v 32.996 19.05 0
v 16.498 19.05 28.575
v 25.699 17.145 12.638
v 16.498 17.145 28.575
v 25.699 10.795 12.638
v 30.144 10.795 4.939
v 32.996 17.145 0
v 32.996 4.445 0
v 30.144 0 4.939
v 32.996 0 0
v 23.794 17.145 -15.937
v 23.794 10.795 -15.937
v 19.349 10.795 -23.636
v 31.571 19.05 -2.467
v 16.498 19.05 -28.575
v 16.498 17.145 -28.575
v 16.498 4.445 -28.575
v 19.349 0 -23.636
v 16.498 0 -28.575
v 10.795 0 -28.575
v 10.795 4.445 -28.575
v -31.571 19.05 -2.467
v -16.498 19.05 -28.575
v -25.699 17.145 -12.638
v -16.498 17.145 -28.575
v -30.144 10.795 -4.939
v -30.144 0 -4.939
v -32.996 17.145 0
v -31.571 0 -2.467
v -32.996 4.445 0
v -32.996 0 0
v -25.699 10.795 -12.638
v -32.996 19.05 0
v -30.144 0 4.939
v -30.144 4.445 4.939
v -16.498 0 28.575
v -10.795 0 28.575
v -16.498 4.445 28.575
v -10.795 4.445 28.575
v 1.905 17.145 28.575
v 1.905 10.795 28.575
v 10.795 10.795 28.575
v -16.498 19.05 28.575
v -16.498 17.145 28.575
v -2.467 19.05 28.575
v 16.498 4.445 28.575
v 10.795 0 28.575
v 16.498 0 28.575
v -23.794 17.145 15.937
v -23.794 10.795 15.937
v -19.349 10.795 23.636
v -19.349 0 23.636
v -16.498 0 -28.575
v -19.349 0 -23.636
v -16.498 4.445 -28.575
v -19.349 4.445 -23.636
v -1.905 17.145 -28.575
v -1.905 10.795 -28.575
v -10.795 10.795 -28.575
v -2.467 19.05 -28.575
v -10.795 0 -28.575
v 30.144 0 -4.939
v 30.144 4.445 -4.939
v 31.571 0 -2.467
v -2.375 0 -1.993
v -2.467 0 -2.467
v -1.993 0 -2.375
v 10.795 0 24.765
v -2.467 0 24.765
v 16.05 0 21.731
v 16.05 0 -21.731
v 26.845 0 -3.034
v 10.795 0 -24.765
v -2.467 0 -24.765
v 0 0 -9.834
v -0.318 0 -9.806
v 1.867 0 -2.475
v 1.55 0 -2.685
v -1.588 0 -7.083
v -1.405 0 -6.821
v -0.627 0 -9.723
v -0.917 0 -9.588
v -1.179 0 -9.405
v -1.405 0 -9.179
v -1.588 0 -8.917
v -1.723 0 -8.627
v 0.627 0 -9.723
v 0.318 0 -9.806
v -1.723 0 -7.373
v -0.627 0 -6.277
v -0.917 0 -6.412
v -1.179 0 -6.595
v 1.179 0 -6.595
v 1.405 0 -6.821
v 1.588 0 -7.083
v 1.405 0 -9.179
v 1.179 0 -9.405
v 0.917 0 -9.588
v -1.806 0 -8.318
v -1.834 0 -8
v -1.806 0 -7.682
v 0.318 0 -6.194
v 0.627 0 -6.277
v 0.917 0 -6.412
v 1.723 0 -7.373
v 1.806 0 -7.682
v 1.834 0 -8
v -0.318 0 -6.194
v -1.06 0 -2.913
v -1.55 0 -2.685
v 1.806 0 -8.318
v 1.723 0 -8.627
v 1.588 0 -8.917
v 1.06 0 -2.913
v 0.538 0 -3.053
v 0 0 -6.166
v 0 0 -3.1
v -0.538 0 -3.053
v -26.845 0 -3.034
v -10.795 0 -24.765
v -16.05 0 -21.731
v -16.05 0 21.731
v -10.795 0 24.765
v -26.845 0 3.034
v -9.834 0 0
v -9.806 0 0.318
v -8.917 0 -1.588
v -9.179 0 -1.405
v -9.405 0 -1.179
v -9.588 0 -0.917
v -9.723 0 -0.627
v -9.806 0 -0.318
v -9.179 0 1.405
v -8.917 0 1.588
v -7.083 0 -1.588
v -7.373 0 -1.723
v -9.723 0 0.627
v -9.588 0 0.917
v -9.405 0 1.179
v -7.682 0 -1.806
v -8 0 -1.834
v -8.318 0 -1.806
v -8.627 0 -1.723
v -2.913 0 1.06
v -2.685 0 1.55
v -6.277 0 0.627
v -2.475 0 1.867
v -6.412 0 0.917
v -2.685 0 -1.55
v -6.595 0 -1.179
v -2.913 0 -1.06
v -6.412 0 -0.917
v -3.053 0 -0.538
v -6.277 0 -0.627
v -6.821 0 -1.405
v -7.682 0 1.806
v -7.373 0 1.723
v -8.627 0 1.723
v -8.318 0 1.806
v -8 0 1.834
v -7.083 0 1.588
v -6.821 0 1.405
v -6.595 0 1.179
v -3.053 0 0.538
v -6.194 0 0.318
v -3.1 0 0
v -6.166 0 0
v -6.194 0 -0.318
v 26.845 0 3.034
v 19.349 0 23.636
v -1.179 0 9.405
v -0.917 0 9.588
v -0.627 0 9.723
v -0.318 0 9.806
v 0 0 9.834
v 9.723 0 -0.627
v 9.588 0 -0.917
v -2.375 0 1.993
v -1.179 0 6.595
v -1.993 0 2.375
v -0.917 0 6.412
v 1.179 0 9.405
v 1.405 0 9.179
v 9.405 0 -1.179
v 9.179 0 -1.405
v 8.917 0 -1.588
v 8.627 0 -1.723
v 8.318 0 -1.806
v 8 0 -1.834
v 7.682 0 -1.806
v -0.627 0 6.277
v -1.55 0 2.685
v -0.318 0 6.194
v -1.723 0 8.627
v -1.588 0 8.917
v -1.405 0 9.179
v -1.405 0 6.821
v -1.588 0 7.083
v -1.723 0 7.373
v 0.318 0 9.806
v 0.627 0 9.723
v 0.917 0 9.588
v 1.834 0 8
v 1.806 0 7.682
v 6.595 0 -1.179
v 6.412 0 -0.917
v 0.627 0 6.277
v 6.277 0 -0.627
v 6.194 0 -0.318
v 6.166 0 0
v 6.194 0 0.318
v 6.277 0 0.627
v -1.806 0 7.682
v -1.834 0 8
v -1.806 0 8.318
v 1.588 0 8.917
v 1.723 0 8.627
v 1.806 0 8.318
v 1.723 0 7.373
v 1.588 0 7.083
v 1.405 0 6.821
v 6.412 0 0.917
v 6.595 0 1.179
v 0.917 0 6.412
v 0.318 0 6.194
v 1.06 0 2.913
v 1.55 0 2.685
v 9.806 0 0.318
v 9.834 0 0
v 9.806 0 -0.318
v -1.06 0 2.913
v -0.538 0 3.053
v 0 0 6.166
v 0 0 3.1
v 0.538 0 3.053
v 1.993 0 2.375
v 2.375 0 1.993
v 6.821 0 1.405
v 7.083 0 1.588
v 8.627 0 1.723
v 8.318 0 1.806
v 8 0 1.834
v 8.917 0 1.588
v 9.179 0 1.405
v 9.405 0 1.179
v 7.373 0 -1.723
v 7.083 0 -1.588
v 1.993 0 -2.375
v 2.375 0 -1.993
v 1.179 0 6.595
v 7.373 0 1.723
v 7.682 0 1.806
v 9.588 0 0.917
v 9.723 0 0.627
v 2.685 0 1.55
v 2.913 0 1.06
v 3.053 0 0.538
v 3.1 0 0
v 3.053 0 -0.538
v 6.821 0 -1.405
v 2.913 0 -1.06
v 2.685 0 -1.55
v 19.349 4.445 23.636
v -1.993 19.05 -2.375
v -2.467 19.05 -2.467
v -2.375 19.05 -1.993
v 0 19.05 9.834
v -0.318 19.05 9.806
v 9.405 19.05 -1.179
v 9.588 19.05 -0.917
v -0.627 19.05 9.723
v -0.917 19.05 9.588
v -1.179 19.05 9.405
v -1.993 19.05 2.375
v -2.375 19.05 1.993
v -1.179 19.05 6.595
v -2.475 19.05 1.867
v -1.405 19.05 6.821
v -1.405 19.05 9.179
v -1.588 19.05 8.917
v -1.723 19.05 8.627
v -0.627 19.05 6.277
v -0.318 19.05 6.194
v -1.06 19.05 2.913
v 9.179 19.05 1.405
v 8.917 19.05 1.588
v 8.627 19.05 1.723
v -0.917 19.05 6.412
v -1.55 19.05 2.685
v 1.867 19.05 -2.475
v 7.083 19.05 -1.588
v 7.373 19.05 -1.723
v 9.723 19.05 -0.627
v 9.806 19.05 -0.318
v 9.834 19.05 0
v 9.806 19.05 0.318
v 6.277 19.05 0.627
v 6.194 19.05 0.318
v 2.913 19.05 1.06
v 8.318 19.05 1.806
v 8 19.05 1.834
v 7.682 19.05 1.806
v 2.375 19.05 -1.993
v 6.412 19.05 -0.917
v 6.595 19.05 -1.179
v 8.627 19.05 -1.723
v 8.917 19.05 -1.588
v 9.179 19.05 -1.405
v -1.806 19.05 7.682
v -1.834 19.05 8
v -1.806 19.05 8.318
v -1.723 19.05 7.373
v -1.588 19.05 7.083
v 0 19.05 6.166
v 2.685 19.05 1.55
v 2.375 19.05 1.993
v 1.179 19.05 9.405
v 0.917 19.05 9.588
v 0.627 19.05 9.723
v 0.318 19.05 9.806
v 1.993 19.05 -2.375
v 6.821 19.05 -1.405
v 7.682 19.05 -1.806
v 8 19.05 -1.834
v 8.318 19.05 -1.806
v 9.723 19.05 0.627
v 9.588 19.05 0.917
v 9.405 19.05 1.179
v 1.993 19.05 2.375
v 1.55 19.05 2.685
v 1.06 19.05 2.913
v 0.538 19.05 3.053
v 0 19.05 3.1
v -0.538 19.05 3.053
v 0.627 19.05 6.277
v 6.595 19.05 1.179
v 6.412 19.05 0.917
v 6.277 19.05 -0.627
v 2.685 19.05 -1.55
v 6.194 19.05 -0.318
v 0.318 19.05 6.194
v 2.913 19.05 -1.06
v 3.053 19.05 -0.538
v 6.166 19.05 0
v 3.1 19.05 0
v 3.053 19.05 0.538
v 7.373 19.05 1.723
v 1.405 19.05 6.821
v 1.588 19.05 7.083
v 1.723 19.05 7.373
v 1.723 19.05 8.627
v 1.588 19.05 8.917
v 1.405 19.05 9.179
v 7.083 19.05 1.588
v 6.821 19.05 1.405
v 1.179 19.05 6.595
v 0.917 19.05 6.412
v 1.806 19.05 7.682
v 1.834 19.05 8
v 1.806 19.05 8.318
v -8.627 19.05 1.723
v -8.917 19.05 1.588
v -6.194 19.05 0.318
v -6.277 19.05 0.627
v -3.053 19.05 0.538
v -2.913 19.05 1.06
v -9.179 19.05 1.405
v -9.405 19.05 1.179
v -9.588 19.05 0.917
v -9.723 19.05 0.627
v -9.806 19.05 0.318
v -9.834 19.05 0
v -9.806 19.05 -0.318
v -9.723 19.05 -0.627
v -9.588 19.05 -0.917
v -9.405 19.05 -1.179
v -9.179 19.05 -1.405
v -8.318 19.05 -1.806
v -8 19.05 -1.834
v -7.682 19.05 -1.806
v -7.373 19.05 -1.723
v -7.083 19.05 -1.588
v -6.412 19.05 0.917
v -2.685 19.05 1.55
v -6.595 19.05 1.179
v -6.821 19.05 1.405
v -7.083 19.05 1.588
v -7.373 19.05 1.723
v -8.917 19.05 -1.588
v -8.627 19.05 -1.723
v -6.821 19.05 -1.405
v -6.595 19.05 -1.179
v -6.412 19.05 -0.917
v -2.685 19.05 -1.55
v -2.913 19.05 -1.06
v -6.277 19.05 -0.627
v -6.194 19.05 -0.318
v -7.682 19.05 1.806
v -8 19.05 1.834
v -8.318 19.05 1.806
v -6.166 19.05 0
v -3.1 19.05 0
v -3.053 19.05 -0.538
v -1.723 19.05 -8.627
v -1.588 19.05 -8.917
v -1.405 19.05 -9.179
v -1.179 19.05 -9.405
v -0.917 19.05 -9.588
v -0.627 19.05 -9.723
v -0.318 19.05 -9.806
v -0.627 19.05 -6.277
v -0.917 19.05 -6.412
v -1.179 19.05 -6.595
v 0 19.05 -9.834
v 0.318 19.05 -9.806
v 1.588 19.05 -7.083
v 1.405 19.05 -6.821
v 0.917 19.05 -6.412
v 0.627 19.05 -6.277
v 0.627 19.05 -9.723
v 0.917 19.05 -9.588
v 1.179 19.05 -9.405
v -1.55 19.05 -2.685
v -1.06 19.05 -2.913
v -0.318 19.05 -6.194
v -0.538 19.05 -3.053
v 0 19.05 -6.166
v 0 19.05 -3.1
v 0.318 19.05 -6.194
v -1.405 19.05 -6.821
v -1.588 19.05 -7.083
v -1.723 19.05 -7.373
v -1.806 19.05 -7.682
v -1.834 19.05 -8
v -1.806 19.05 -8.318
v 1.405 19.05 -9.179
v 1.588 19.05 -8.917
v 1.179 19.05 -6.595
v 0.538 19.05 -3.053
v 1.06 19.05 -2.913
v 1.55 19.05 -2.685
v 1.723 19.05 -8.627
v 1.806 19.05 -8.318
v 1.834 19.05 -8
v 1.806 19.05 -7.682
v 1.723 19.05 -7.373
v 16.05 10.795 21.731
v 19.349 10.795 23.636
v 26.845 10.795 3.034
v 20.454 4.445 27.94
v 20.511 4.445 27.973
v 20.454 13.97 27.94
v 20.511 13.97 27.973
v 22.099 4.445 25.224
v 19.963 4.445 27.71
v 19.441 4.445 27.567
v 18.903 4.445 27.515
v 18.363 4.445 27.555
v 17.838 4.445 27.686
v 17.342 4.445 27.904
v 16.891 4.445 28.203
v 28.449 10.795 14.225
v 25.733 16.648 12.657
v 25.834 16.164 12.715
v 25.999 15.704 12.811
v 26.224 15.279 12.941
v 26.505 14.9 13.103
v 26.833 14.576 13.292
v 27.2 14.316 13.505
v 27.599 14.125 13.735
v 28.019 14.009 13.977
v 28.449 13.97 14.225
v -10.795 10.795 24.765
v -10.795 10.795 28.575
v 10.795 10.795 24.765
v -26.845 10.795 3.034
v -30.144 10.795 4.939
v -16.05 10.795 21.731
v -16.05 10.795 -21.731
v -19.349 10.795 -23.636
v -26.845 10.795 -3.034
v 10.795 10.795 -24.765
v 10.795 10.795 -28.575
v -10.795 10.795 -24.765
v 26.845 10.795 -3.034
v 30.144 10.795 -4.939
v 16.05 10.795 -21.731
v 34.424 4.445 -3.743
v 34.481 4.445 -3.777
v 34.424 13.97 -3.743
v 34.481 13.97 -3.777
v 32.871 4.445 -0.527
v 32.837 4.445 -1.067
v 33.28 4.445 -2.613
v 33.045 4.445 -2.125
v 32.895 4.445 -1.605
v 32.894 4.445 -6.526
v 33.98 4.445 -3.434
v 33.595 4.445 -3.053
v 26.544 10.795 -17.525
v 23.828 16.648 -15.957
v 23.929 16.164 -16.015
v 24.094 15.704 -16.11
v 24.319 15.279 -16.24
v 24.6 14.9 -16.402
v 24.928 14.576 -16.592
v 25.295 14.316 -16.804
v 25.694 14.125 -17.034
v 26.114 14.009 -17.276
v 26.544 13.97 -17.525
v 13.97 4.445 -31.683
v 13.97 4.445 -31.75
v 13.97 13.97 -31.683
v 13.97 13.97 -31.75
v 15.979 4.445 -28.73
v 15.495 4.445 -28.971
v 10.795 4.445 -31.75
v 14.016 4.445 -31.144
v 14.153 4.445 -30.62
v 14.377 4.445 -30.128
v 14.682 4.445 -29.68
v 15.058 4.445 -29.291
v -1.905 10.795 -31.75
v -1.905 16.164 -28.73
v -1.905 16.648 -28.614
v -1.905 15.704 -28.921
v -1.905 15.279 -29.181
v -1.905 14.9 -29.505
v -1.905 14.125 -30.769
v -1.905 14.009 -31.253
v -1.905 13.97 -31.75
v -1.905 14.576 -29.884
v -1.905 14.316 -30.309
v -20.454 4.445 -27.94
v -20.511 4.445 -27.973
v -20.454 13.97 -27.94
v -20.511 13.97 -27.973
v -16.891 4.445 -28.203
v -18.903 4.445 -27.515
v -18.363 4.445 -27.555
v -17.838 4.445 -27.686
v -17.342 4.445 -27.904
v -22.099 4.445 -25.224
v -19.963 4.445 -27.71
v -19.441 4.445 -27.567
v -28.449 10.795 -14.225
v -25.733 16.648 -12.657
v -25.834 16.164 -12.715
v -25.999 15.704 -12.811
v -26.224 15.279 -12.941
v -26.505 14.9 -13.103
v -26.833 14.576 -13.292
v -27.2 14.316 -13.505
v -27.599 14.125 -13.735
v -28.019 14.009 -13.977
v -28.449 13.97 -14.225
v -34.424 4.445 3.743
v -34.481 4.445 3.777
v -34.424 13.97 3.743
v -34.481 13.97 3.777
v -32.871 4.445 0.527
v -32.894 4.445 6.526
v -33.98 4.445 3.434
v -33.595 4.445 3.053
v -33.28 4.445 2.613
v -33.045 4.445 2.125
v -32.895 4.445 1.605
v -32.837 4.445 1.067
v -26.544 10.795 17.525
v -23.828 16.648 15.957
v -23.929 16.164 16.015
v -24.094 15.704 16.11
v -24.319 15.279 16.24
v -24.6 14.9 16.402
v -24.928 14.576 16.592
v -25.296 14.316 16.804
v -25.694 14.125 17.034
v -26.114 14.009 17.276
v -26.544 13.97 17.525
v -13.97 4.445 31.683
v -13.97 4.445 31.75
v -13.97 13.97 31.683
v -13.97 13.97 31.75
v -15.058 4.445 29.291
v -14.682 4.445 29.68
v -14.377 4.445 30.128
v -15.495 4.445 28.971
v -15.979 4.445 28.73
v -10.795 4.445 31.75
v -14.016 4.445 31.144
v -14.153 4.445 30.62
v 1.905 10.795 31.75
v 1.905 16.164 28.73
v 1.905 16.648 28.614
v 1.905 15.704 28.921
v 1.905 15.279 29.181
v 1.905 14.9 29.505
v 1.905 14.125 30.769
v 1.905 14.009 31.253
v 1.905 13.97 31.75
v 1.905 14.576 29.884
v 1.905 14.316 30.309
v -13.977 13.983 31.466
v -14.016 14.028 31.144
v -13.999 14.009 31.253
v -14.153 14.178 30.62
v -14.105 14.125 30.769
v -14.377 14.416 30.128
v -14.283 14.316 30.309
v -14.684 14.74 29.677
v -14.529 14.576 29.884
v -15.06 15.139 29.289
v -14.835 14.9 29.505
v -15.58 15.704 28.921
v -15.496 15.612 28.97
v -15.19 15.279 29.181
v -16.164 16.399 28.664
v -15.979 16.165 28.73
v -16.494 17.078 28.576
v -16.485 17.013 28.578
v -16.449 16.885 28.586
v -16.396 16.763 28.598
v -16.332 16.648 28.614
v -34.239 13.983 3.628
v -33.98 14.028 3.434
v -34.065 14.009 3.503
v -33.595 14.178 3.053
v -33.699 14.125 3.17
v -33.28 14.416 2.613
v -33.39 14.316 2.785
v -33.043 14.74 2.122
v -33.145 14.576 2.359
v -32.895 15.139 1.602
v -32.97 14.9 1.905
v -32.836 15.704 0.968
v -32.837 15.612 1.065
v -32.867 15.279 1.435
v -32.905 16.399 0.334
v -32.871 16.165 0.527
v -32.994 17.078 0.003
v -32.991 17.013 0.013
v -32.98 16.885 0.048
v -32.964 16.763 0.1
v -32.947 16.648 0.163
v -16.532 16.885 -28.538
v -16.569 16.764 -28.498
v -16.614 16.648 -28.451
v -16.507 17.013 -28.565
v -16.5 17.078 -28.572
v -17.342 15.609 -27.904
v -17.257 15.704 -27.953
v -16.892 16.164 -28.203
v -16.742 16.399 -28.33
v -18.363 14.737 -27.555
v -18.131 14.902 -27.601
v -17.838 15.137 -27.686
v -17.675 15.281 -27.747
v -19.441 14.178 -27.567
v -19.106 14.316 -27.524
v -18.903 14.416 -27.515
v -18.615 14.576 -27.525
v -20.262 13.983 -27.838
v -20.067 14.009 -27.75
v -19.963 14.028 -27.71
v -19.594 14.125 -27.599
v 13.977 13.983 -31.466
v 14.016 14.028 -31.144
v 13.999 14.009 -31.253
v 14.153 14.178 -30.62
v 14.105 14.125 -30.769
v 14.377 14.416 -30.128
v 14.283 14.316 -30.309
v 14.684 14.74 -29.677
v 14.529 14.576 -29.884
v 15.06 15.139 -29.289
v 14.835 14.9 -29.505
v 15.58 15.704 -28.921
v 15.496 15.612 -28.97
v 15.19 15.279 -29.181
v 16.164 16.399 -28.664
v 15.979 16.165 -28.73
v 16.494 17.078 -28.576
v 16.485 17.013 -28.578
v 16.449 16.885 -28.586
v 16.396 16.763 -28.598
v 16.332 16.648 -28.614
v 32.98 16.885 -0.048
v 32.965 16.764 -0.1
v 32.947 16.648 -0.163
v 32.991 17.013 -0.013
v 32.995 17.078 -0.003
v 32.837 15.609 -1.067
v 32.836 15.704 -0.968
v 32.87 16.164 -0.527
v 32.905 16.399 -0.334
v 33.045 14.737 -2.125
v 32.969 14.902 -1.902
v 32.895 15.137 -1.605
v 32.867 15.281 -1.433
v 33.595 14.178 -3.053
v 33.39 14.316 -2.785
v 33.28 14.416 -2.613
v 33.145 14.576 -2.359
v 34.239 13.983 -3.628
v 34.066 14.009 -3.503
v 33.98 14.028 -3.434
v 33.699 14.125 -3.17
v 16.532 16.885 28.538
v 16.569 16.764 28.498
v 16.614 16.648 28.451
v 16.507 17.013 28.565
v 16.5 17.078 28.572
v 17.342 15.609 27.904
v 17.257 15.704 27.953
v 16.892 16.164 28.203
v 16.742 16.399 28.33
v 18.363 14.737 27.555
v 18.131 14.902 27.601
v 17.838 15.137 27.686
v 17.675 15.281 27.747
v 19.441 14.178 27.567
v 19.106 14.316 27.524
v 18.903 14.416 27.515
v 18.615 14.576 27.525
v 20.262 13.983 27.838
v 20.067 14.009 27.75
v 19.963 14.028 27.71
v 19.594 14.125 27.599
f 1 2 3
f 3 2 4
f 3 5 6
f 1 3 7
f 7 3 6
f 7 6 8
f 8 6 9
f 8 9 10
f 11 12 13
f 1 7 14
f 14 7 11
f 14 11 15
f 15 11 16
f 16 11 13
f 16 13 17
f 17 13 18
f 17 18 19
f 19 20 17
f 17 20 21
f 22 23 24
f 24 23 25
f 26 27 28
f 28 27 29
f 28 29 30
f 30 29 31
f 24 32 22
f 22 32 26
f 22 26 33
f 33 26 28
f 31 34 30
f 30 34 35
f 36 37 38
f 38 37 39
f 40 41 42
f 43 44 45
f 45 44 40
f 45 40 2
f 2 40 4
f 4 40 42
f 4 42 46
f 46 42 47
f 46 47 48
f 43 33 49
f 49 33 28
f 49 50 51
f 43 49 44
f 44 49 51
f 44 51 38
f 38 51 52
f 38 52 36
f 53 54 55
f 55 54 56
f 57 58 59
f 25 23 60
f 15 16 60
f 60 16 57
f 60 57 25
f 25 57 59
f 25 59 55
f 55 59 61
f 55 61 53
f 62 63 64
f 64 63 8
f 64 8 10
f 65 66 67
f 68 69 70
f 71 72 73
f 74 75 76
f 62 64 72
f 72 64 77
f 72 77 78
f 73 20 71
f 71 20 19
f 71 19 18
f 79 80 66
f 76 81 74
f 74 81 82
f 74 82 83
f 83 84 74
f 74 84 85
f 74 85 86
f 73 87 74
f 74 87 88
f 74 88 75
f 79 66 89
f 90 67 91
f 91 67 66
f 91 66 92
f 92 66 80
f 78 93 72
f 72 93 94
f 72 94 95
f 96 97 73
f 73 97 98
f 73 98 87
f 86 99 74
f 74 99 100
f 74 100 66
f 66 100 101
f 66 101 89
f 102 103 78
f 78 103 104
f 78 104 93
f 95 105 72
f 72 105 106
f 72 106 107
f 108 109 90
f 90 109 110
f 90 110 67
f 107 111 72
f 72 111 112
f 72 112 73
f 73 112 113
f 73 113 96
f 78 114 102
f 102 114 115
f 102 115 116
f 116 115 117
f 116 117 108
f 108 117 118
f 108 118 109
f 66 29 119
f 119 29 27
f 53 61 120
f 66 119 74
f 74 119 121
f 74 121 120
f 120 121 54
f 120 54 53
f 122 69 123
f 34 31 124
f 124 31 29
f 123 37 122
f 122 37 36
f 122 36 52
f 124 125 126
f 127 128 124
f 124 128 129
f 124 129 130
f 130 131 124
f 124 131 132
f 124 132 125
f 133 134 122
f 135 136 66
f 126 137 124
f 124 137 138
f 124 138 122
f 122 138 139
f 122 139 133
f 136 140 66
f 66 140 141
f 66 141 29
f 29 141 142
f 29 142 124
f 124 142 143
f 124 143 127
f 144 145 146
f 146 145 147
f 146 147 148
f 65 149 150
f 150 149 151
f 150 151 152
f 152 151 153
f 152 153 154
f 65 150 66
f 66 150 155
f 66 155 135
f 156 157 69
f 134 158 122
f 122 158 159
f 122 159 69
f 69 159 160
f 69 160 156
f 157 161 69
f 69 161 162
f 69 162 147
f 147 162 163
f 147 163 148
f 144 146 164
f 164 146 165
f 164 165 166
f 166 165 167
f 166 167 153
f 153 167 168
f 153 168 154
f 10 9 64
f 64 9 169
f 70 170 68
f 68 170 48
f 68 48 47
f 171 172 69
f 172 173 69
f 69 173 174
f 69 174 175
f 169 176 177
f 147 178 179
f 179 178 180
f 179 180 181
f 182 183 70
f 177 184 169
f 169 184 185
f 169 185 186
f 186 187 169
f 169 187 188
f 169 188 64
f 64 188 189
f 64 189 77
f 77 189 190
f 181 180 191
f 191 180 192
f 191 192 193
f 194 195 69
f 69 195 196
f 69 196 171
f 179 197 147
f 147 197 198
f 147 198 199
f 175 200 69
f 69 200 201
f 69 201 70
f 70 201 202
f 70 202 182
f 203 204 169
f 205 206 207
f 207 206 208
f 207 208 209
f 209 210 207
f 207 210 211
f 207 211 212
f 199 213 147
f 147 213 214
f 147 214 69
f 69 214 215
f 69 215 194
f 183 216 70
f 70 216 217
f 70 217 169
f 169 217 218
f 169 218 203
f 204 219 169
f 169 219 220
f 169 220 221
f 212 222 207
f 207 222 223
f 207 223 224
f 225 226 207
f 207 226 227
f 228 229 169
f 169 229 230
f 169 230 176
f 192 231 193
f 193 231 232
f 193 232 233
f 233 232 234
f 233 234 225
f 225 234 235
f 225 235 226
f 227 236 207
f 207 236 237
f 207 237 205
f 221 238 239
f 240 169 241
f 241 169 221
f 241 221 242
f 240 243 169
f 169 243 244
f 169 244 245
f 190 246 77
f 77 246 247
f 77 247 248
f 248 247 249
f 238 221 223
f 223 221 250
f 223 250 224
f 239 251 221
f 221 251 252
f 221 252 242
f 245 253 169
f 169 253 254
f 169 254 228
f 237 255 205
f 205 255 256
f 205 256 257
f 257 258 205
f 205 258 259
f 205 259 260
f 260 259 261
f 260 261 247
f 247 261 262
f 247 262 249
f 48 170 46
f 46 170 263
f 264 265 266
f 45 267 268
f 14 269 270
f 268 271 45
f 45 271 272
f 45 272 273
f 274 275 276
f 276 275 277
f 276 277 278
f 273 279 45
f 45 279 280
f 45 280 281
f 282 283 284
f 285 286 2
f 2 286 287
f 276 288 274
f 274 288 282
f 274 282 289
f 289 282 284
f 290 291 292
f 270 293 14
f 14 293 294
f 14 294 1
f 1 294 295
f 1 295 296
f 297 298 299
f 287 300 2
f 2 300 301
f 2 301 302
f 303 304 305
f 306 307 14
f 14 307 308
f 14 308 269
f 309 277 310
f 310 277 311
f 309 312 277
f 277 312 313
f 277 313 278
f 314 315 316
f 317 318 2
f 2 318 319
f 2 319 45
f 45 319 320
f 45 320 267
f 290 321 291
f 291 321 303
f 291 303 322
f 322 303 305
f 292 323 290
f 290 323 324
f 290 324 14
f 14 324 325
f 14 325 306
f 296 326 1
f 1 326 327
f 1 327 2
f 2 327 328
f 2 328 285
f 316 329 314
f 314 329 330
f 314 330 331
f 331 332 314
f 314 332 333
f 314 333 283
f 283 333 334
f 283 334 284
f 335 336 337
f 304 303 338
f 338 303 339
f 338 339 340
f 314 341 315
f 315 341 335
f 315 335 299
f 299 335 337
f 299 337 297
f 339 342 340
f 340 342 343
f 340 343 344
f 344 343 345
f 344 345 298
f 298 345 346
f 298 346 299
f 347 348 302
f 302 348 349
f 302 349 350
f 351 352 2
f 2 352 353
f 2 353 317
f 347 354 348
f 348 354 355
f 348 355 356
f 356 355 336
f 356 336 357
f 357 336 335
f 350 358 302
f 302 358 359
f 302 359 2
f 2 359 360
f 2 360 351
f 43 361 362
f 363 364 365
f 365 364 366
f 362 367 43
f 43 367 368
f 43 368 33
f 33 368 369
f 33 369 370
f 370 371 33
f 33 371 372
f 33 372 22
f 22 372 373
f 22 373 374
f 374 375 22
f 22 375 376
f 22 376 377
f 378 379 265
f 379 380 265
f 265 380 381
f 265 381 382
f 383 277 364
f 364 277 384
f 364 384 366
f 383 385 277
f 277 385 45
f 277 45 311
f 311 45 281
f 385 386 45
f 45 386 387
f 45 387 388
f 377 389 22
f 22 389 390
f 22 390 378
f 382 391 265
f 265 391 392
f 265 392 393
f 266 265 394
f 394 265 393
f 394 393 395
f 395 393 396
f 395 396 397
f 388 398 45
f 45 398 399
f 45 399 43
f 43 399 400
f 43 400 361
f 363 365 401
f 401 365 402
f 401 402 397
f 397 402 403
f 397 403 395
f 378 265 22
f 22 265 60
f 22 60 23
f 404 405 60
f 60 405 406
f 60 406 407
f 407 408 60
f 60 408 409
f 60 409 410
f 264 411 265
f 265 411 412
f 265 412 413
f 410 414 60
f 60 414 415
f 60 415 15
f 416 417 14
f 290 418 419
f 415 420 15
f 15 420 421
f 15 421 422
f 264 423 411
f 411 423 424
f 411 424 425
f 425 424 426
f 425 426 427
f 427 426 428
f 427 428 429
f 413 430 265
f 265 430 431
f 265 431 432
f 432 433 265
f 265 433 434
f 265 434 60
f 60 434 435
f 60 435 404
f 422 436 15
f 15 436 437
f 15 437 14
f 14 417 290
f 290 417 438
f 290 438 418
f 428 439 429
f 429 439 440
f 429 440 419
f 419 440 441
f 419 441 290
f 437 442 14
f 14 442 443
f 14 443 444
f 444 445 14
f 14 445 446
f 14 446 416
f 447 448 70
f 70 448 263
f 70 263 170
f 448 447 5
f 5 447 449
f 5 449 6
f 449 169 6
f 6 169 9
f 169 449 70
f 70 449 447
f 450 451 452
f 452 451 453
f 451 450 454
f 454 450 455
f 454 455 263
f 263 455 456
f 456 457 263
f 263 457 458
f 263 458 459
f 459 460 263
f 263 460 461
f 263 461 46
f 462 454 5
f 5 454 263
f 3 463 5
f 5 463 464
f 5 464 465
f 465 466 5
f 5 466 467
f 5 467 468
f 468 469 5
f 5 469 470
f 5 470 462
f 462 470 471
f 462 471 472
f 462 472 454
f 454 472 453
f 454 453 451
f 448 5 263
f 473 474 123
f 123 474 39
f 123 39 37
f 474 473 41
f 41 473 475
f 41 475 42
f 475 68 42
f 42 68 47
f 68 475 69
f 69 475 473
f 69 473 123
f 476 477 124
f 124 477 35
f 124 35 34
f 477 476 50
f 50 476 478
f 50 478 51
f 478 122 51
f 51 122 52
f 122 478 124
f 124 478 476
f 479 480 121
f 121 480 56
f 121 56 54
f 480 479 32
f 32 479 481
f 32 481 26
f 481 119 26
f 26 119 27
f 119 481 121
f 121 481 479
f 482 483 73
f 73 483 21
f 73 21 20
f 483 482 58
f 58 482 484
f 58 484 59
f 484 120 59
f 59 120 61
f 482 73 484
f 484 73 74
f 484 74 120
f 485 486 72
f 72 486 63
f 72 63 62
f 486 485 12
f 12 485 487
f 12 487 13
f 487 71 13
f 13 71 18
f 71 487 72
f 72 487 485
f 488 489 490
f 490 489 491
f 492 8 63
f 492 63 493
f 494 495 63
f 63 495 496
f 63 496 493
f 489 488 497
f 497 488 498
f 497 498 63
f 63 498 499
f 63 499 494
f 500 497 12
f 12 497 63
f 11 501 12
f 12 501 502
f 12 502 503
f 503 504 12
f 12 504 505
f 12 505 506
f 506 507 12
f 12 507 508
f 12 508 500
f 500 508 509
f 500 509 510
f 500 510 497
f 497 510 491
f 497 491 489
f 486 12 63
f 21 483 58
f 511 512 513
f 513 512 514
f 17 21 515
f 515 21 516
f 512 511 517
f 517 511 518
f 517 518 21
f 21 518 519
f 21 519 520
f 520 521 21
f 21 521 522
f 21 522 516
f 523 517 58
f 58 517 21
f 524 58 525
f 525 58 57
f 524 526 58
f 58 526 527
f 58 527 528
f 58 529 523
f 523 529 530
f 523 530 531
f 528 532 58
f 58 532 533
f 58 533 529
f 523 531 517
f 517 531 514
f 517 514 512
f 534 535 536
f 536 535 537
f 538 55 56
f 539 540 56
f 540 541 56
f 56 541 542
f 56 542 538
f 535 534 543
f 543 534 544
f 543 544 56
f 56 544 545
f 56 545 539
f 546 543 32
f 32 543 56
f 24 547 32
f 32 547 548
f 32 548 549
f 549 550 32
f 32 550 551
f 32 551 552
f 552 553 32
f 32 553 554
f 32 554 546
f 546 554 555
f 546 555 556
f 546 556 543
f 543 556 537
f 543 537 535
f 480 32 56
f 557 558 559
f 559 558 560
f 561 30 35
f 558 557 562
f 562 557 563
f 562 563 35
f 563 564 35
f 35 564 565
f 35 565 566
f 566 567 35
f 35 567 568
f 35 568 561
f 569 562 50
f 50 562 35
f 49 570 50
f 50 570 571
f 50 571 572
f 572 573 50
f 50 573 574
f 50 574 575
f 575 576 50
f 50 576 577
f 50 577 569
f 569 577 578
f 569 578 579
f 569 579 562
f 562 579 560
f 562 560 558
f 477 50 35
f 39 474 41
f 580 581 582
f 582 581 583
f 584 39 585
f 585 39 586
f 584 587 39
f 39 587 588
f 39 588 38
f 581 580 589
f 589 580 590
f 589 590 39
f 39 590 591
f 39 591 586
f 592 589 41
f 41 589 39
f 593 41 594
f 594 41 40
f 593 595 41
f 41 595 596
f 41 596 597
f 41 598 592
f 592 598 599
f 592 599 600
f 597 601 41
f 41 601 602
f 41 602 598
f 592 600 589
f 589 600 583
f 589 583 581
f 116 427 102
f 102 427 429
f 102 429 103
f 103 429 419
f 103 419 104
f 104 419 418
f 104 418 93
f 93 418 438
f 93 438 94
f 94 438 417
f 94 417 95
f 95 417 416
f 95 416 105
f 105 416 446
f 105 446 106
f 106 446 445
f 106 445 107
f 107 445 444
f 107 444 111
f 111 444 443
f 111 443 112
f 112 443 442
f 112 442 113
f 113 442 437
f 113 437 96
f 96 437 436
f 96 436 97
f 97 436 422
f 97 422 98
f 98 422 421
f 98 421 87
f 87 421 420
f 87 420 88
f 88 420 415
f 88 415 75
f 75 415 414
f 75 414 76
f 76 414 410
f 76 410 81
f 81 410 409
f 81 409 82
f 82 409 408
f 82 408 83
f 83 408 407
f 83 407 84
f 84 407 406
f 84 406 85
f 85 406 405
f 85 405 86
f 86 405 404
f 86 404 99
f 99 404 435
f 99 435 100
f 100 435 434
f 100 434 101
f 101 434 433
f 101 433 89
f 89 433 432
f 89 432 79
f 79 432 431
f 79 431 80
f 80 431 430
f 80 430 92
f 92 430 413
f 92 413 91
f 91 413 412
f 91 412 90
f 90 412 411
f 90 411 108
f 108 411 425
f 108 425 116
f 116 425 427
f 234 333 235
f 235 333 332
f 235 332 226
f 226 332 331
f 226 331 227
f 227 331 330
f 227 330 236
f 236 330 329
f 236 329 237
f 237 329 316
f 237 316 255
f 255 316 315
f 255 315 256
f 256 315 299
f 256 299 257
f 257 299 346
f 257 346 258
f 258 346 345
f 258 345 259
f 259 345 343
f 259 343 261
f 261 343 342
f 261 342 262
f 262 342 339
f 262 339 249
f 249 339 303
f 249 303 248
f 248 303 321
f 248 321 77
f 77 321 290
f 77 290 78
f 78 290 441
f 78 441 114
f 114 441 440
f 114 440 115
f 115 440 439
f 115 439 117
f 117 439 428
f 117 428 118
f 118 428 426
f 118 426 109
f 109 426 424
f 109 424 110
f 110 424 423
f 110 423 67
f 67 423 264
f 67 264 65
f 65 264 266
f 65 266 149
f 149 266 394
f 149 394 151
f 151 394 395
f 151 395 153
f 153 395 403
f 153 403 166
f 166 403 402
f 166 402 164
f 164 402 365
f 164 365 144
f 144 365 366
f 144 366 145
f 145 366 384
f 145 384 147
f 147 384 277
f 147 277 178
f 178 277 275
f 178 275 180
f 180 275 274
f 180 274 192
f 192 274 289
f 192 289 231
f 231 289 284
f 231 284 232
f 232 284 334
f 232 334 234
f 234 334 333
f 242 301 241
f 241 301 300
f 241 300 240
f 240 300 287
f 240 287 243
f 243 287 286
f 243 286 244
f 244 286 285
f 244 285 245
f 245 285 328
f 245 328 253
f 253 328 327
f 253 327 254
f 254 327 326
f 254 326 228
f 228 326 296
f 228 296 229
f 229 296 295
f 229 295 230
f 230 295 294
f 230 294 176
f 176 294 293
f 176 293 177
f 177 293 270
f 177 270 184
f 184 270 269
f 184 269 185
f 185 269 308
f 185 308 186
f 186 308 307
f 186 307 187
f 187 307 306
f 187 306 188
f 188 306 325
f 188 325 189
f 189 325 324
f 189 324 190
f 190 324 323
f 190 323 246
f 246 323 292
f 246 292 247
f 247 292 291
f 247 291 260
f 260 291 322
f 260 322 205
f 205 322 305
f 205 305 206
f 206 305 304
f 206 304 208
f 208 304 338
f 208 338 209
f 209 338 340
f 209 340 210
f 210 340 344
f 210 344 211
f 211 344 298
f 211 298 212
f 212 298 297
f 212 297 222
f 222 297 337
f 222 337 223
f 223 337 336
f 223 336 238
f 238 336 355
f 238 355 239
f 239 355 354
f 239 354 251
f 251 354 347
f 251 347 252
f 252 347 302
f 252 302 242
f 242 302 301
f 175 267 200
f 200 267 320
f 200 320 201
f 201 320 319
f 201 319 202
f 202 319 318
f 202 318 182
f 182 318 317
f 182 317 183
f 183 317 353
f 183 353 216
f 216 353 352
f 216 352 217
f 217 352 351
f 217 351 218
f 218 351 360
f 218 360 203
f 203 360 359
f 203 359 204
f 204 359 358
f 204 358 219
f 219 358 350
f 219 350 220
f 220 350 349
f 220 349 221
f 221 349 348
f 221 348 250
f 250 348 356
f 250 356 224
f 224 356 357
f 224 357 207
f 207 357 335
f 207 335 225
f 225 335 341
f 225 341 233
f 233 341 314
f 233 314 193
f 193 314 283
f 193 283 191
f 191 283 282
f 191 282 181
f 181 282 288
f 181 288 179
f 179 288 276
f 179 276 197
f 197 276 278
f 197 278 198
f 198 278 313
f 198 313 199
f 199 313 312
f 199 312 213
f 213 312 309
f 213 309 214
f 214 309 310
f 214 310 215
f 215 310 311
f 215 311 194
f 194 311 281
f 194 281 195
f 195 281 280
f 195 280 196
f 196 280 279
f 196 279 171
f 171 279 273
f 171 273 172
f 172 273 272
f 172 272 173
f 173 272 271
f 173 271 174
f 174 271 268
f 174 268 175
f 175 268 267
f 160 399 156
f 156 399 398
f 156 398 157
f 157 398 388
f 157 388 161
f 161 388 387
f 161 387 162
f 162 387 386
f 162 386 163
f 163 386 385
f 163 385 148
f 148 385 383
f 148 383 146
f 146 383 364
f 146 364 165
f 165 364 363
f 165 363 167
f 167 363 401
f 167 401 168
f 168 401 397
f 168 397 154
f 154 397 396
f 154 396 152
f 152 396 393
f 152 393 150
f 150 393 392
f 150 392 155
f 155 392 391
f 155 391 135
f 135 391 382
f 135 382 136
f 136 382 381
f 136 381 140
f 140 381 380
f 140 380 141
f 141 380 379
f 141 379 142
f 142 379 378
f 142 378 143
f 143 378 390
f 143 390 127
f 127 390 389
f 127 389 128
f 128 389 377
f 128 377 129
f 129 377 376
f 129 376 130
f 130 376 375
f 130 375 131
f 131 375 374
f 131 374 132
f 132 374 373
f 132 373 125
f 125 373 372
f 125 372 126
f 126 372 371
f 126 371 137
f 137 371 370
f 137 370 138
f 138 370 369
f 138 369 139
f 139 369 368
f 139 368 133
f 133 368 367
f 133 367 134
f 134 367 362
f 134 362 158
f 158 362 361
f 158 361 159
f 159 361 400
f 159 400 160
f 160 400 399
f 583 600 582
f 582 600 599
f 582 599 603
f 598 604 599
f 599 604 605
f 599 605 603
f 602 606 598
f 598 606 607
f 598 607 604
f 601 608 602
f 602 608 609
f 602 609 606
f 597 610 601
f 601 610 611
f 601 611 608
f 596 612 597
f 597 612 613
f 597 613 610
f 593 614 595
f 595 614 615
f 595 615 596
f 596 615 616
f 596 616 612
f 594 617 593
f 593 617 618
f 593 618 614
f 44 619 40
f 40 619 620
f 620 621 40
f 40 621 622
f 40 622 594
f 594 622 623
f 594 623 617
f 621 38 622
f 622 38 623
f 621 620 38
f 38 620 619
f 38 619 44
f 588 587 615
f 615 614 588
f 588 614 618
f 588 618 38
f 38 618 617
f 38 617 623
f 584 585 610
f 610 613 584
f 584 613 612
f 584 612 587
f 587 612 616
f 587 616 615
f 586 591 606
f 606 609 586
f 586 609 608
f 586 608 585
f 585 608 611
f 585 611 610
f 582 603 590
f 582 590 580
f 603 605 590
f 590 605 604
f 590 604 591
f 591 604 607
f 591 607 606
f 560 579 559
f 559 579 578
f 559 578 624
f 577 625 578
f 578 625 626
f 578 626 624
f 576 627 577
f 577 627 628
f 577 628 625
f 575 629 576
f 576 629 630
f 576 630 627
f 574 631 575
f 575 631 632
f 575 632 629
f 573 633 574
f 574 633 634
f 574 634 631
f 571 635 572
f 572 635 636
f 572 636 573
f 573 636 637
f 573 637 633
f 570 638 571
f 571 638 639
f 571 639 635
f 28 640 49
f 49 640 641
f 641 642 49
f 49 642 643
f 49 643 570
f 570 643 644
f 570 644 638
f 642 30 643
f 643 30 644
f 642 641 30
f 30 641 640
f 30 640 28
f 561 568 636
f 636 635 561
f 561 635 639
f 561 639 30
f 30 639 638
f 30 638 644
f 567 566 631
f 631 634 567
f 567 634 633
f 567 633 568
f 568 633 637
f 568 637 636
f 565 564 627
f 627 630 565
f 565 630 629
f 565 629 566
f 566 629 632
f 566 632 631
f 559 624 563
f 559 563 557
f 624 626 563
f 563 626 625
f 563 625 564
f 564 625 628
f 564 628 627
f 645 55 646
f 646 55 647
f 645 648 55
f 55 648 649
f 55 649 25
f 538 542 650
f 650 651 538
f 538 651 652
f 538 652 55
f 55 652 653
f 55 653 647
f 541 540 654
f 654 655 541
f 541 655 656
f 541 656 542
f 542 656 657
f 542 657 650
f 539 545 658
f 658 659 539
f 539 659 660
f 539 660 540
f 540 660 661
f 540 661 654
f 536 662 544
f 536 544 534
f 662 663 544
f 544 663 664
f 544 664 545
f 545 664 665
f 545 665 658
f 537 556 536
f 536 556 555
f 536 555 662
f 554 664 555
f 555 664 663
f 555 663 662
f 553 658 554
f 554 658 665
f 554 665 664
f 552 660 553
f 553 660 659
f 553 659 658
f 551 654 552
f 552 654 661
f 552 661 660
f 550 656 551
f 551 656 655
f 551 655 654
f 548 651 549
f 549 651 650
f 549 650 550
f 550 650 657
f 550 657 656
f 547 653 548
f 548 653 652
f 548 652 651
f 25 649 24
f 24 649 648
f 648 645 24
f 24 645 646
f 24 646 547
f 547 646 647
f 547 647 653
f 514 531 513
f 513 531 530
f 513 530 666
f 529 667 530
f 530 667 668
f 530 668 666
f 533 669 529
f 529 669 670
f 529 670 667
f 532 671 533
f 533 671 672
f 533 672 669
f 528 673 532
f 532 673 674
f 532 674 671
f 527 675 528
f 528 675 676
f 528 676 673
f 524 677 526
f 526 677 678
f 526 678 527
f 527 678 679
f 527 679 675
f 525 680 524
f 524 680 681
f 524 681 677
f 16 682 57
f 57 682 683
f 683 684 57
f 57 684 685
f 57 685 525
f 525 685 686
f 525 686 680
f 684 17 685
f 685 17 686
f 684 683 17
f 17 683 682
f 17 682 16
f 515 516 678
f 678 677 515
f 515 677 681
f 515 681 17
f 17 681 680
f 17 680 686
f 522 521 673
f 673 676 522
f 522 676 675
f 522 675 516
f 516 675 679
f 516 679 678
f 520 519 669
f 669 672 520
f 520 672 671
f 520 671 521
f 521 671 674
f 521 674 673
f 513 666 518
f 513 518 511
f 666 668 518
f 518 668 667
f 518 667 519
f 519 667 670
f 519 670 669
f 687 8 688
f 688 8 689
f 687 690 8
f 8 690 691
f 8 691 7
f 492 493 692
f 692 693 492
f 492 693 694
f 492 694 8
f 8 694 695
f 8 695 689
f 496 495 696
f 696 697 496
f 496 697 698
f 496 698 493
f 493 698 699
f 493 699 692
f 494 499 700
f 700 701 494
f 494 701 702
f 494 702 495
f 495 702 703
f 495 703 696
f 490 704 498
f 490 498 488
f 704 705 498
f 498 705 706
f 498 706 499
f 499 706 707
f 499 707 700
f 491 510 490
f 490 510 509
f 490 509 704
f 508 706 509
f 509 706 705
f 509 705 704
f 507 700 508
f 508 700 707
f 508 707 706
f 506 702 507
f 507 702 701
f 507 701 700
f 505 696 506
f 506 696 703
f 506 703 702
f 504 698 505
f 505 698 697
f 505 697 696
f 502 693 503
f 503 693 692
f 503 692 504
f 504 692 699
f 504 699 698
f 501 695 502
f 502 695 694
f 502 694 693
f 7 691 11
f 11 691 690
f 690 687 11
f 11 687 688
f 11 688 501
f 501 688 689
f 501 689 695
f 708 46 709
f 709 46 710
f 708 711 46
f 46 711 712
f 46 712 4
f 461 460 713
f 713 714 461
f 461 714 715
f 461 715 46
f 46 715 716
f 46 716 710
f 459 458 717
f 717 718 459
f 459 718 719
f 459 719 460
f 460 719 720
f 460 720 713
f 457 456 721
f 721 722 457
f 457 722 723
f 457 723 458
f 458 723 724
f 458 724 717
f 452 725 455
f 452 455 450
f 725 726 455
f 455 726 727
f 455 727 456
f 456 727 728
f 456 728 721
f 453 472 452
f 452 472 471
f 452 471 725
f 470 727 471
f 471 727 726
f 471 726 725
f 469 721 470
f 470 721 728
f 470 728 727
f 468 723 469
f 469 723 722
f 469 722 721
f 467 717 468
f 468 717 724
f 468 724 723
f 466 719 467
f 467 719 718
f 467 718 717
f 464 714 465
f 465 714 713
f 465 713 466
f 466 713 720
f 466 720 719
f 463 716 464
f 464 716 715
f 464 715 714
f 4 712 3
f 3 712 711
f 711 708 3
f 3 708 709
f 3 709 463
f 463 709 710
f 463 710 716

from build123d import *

# Parameters (mm, degrees)
BOSS_EXTRUDE1_DEPTH = 19.05
SKETCH2_W           = 10.795
SKETCH2_H           = 10.795
CUT_EXTRUDE1_DEPTH  = 3.81
BOSS_EXTRUDE2_DEPTH = 3.175
CIRPATTERN1_COUNT   = 6
SKETCH6_R           = 3.1
SKETCH6_R_2         = 1.83388
CUT_EXTRUDE3_DEPTH  = 51.595706367
FILLET1_R           = 3.175


with BuildPart() as part:
    # Sketch1 → Boss-Extrude1 (new body)
    with BuildSketch(Plane(origin=(0, 0, 0), x_dir=(1, 0, 0), z_dir=(0, 1, 0))):
        Polygon((16.497783942, 28.575), (-16.497783942, 28.575), (-32.995567884, 0), (-16.497783942, -28.575), (16.497783942, -28.575), (32.995567884, 0), align=None)
    extrude(amount=BOSS_EXTRUDE1_DEPTH)

    # Sketch2 → Cut-Extrude1 (cut)
    with BuildSketch(Plane(origin=(24.746675913, 0, 14.2875), x_dir=(0.4999999999999996, 0, -0.8660254037844389), z_dir=(0.8660254037844388, 0, 0.49999999999999956))):
        with Locations((-5.3975, 5.3975)):
            Rectangle(SKETCH2_W, SKETCH2_H)
        with Locations((5.3975, 5.3975)):
            Rectangle(SKETCH2_W, SKETCH2_H)
    cut_extrude1 = extrude(amount=-CUT_EXTRUDE1_DEPTH, mode=Mode.SUBTRACT)

    # Sketch3 → Boss-Extrude2 (add)
    with BuildSketch(Plane(origin=(24.746675913, 0, 14.2875), x_dir=(0.4999999999999996, 0, -0.8660254037844389), z_dir=(0.8660254037844388, 0, 0.49999999999999956))):
        Polygon((-13.97, 13.97), (-13.97, 4.445), (-10.795, 4.445), (1.905, 10.795), (1.905, 13.97), align=None)
    boss_extrude2 = extrude(amount=BOSS_EXTRUDE2_DEPTH)

    # CirPattern1: Cut-Extrude1, Boss-Extrude2 ×6 about axis
    cirpattern1_axis = Axis((0, 0, 0), (0, 1, 0))
    add([cut_extrude1.rotate(cirpattern1_axis, i * 360 / CIRPATTERN1_COUNT) for i in range(1, CIRPATTERN1_COUNT)], mode=Mode.SUBTRACT)
    add([boss_extrude2.rotate(cirpattern1_axis, i * 360 / CIRPATTERN1_COUNT) for i in range(1, CIRPATTERN1_COUNT)])

    # Sketch6 → Cut-Extrude3 (cut, through all)
    with BuildSketch(Plane(origin=(0, 19.05, 0), x_dir=(1, 0, 0), z_dir=(0, 1, 0))):
        with Locations(Location((0, 0, 0), (0, 0, 270))):
            Circle(SKETCH6_R)
        with Locations(Location((0, 8, 0), (0, 0, 270))):
            Circle(SKETCH6_R_2)
        with Locations(Location((8, 0, 0), (0, 0, 270))):
            Circle(SKETCH6_R_2)
        with Locations(Location((0, -8, 0), (0, 0, 270))):
            Circle(SKETCH6_R_2)
        with Locations(Location((-8, 0, 0), (0, 0, 270))):
            Circle(SKETCH6_R_2)
    extrude(amount=-CUT_EXTRUDE3_DEPTH, mode=Mode.SUBTRACT)

    # Fillet1
    # the kernel refuses this fillet: 3.175 mm, written as the material it adds along each edge
    with BuildSketch(Plane(origin=(-13.97, 13.97, 28.575), x_dir=(-1.0, -6.713789629229293e-15, 2.071656471641608e-12), z_dir=(0, -1, 0)), Plane(origin=(-31.731675913, 13.97, 2.189125109), x_dir=(-0.5000000000017967, -6.713789629229294e-15, -0.8660254037834013), z_dir=(0, -1, 0)), Plane(origin=(-17.761675913, 13.97, -26.385874891), x_dir=(0.4999999999982169, -6.713789629229294e-15, -0.866025403785468), z_dir=(0, -1, 0)), Plane(origin=(13.97, 13.97, -28.575), x_dir=(1.0, -6.713789629229294e-15, -2.032303431474765e-12), z_dir=(0, -1, 0)), Plane(origin=(31.731675913, 13.97, -2.189125109), x_dir=(0.5000000000017165, -6.7137896292292946e-15, 0.8660254037834476), z_dir=(0, -1, 0)), Plane(origin=(17.761675913, 13.97, 26.385874891), x_dir=(-0.49999999999821076, -6.713789629229294e-15, 0.8660254037854717), z_dir=(0, -1, 0))) as fillet1_piece_1:
        with BuildLine():
            CenterArc((3.175, -3.108333376), FILLET1_R, 101.762045639, 78.237954362)
            Line((0, -3.108333376), (-0.0635, -3.108333376))
            Line((-0.0635, -3.108333376), (-0.0635, 0))
            Line((-0.0635, 0), (0, 0.0635))
            ThreePointArc((0, 0.0635), (1.263891971, 0.0635), (2.514839621, 0.062166668))
            Line((2.514839621, 0.062166668), (2.527783942, 0))
        make_face()
    extrude(amount=9.525)
    with BuildSketch(Plane(origin=(1.905, 13.97, 28.575), x_dir=(0, 1, 0), z_dir=(-1, 0, 0)), Plane(origin=(-23.794175913, 13.97, 15.937278394), x_dir=(0, 1, 0), z_dir=(-0.5, 0, -0.8660254037844387)), Plane(origin=(-25.699175913, 13.97, -12.637721606), x_dir=(0, 1, 0), z_dir=(0.4999999999999997, 0, -0.8660254037844388)), Plane(origin=(-1.905, 13.97, -28.575), x_dir=(0, 1, 0), z_dir=(1, 0, 0)), Plane(origin=(23.794175913, 13.97, -15.937278394), x_dir=(0, 1, 0), z_dir=(0.5000000000000003, 0, 0.8660254037844386)), Plane(origin=(25.699175913, 13.97, 12.637721606), x_dir=(0, 1, 0), z_dir=(-0.4999999999999996, 0, 0.8660254037844389))) as fillet1_piece_2:
        with BuildLine():
            CenterArc((FILLET1_R, -FILLET1_R), FILLET1_R, 90, 90)
            Line((0, -FILLET1_R), (-FILLET1_R * 0.02, -FILLET1_R))
            Line((-FILLET1_R * 0.02, -FILLET1_R), (-FILLET1_R * 0.02, FILLET1_R * 0.02))
            Line((-FILLET1_R * 0.02, FILLET1_R * 0.02), (FILLET1_R, FILLET1_R * 0.02))
            Line((FILLET1_R, FILLET1_R * 0.02), (FILLET1_R, 0))
        make_face()
    extrude(amount=15.875)
    with BuildSketch(Plane(origin=(-13.97, 21.740833439, 28.575), x_dir=(-1.0, -6.713789629229294e-15, 2.08290019740361e-12), z_dir=(0, -1, 0))) as fillet1_piece_3a_section:
        with BuildLine():
            CenterArc((3.175, -3.108333376), FILLET1_R, 101.762045639, 78.237954362)
            Line((0, -3.108333376), (-0.0635, -3.108333376))
            Line((-0.0635, -3.108333376), (-0.0635, 0))
            Line((-0.0635, 0), (0, 0.0635))
            ThreePointArc((0, 0.0635), (1.263891971, 0.0635), (2.514839621, 0.062166668))
            Line((2.514839621, 0.062166668), (2.527783942, 0))
        make_face()
    fillet1_piece_3a = extrude(amount=17.295833439, mode=Mode.PRIVATE)
    fillet1_piece_3a = split(fillet1_piece_3a, bisect_by=Plane(origin=(-14.601274605, 19.05, 29.300800837), z_dir=(0, -1, 0)), keep=Keep.TOP, mode=Mode.PRIVATE)
    fillet1_piece_3a = split(fillet1_piece_3a, bisect_by=Plane(origin=(-14.601274605, 13.97, 29.300800837), z_dir=(0, 1, 0)), keep=Keep.TOP, mode=Mode.PRIVATE)
    with BuildSketch(Plane(origin=(1.905, 13.97, 28.575), x_dir=(0, 1, 0), z_dir=(-1, 0, 0))) as fillet1_piece_3b_section:
        with BuildLine():
            CenterArc((FILLET1_R, -FILLET1_R), FILLET1_R, 90, 90)
            Line((0, -FILLET1_R), (-FILLET1_R * 0.02, -FILLET1_R))
            Line((-FILLET1_R * 0.02, -FILLET1_R), (-FILLET1_R * 0.02, FILLET1_R * 0.02))
            Line((-FILLET1_R * 0.02, FILLET1_R * 0.02), (FILLET1_R, FILLET1_R * 0.02))
            Line((FILLET1_R, FILLET1_R * 0.02), (FILLET1_R, 0))
        make_face()
    fillet1_piece_3b = extrude(amount=23.8125, mode=Mode.PRIVATE)
    fillet1_piece_3b = split(fillet1_piece_3b, bisect_by=Plane(origin=(-15.883361885, 14.764439111, 29.63921022), z_dir=(0.8660254037844387, 0, -0.5000000000000003)), keep=Keep.TOP, mode=Mode.PRIVATE)
    fillet1_piece_3b = split(fillet1_piece_3b, bisect_by=Plane(origin=(-13.97, 14.764439111, 29.165775935), z_dir=(-1, 0, 0)), keep=Keep.TOP, mode=Mode.PRIVATE)
    fillet1_piece_3 = fillet1_piece_3a & fillet1_piece_3b
    add(fillet1_piece_3)
    with BuildSketch(Plane(origin=(-31.731675913, 21.740833439, 2.189125109), x_dir=(-0.5000000000018066, -6.7137896292292946e-15, -0.8660254037833955), z_dir=(0, -1, 0))) as fillet1_piece_4a_section:
        with BuildLine():
            CenterArc((3.175, -3.108333376), FILLET1_R, 101.762045639, 78.237954362)
            Line((0, -3.108333376), (-0.0635, -3.108333376))
            Line((-0.0635, -3.108333376), (-0.0635, 0))
            Line((-0.0635, 0), (0, 0.0635))
            ThreePointArc((0, 0.0635), (1.263891971, 0.0635), (2.514839621, 0.062166668))
            Line((2.514839621, 0.062166668), (2.527783942, 0))
        make_face()
    fillet1_piece_4a = extrude(amount=17.295833439, mode=Mode.PRIVATE)
    fillet1_piece_4a = split(fillet1_piece_4a, bisect_by=Plane(origin=(-32.675875179, 19.05, 2.005325683), z_dir=(0, -1, 0)), keep=Keep.TOP, mode=Mode.PRIVATE)
    fillet1_piece_4a = split(fillet1_piece_4a, bisect_by=Plane(origin=(-32.675875179, 13.97, 2.005325683), z_dir=(0, 1, 0)), keep=Keep.TOP, mode=Mode.PRIVATE)
    with BuildSketch(Plane(origin=(-23.794175913, 13.97, 15.937278394), x_dir=(0, 1, 0), z_dir=(-0.5, 0, -0.8660254037844387))) as fillet1_piece_4b_section:
        with BuildLine():
            CenterArc((FILLET1_R, -FILLET1_R), FILLET1_R, 90, 90)
            Line((0, -FILLET1_R), (-FILLET1_R * 0.02, -FILLET1_R))
            Line((-FILLET1_R * 0.02, -FILLET1_R), (-FILLET1_R * 0.02, FILLET1_R * 0.02))
            Line((-FILLET1_R * 0.02, FILLET1_R * 0.02), (FILLET1_R, FILLET1_R * 0.02))
            Line((FILLET1_R, FILLET1_R * 0.02), (FILLET1_R, 0))
        make_face()
    fillet1_piece_4b = extrude(amount=23.8125, mode=Mode.PRIVATE)
    fillet1_piece_4b = split(fillet1_piece_4b, bisect_by=Plane(origin=(-33.609989941, 14.764439111, 1.06421022), z_dir=(0.866025403784439, 0, 0.4999999999999995)), keep=Keep.TOP, mode=Mode.PRIVATE)
    fillet1_piece_4b = split(fillet1_piece_4b, bisect_by=Plane(origin=(-32.243302881, 14.764439111, 2.484513077), z_dir=(-0.5000000000000001, -6.713789629229295e-15, -0.8660254037844387)), keep=Keep.TOP, mode=Mode.PRIVATE)
    fillet1_piece_4 = fillet1_piece_4a & fillet1_piece_4b
    add(fillet1_piece_4)
    with BuildSketch(Plane(origin=(-17.761675913, 21.740833439, -26.385874891), x_dir=(0.4999999999982358, -6.713789629229293e-15, -0.8660254037854572), z_dir=(0, -1, 0))) as fillet1_piece_5a_section:
        with BuildLine():
            CenterArc((3.175, -3.108333376), FILLET1_R, 101.762045639, 78.237954362)
            Line((0, -3.108333376), (-0.0635, -3.108333376))
            Line((-0.0635, -3.108333376), (-0.0635, 0))
            Line((-0.0635, 0), (0, 0.0635))
            ThreePointArc((0, 0.0635), (1.263891971, 0.0635), (2.514839621, 0.062166668))
            Line((2.514839621, 0.062166668), (2.527783942, 0))
        make_face()
    fillet1_piece_5a = extrude(amount=17.295833439, mode=Mode.PRIVATE)
    fillet1_piece_5a = split(fillet1_piece_5a, bisect_by=Plane(origin=(-18.074600574, 19.05, -27.295475154), z_dir=(0, -1, 0)), keep=Keep.TOP, mode=Mode.PRIVATE)
    fillet1_piece_5a = split(fillet1_piece_5a, bisect_by=Plane(origin=(-18.074600574, 13.97, -27.295475154), z_dir=(0, 1, 0)), keep=Keep.TOP, mode=Mode.PRIVATE)
    with BuildSketch(Plane(origin=(-25.699175913, 13.97, -12.637721606), x_dir=(0, 1, 0), z_dir=(0.4999999999999997, 0, -0.8660254037844388))) as fillet1_piece_5b_section:
        with BuildLine():
            CenterArc((FILLET1_R, -FILLET1_R), FILLET1_R, 90, 90)
            Line((0, -FILLET1_R), (-FILLET1_R * 0.02, -FILLET1_R))
            Line((-FILLET1_R * 0.02, -FILLET1_R), (-FILLET1_R * 0.02, FILLET1_R * 0.02))
            Line((-FILLET1_R * 0.02, FILLET1_R * 0.02), (FILLET1_R, FILLET1_R * 0.02))
            Line((FILLET1_R, FILLET1_R * 0.02), (FILLET1_R, 0))
        make_face()
    fillet1_piece_5b = extrude(amount=23.8125, mode=Mode.PRIVATE)
    fillet1_piece_5b = split(fillet1_piece_5b, bisect_by=Plane(origin=(-17.726628056, 14.764439111, -28.575), z_dir=(0, 0, 1)), keep=Keep.TOP, mode=Mode.PRIVATE)
    fillet1_piece_5b = split(fillet1_piece_5b, bisect_by=Plane(origin=(-18.273302881, 14.764439111, -26.681262858), z_dir=(0.49999999999999967, -6.713789629229293e-15, -0.8660254037844388)), keep=Keep.TOP, mode=Mode.PRIVATE)
    fillet1_piece_5 = fillet1_piece_5a & fillet1_piece_5b
    add(fillet1_piece_5)
    with BuildSketch(Plane(origin=(13.97, 21.740833439, -28.575), x_dir=(1.0, -6.713789629229293e-15, -2.0351143629152955e-12), z_dir=(0, -1, 0))) as fillet1_piece_6a_section:
        with BuildLine():
            CenterArc((3.175, -3.108333376), FILLET1_R, 101.762045639, 78.237954362)
            Line((0, -3.108333376), (-0.0635, -3.108333376))
            Line((-0.0635, -3.108333376), (-0.0635, 0))
            Line((-0.0635, 0), (0, 0.0635))
            ThreePointArc((0, 0.0635), (1.263891971, 0.0635), (2.514839621, 0.062166668))
            Line((2.514839621, 0.062166668), (2.527783942, 0))
        make_face()
    fillet1_piece_6a = extrude(amount=17.295833439, mode=Mode.PRIVATE)
    fillet1_piece_6a = split(fillet1_piece_6a, bisect_by=Plane(origin=(14.601274605, 19.05, -29.300800837), z_dir=(0, -1, 0)), keep=Keep.TOP, mode=Mode.PRIVATE)
    fillet1_piece_6a = split(fillet1_piece_6a, bisect_by=Plane(origin=(14.601274605, 13.97, -29.300800837), z_dir=(0, 1, 0)), keep=Keep.TOP, mode=Mode.PRIVATE)
    with BuildSketch(Plane(origin=(-1.905, 13.97, -28.575), x_dir=(0, 1, 0), z_dir=(1, 0, 0))) as fillet1_piece_6b_section:
        with BuildLine():
            CenterArc((FILLET1_R, -FILLET1_R), FILLET1_R, 90, 90)
            Line((0, -FILLET1_R), (-FILLET1_R * 0.02, -FILLET1_R))
            Line((-FILLET1_R * 0.02, -FILLET1_R), (-FILLET1_R * 0.02, FILLET1_R * 0.02))
            Line((-FILLET1_R * 0.02, FILLET1_R * 0.02), (FILLET1_R, FILLET1_R * 0.02))
            Line((FILLET1_R, FILLET1_R * 0.02), (FILLET1_R, 0))
        make_face()
    fillet1_piece_6b = extrude(amount=23.8125, mode=Mode.PRIVATE)
    fillet1_piece_6b = split(fillet1_piece_6b, bisect_by=Plane(origin=(15.883361885, 14.764439111, -29.63921022), z_dir=(-0.8660254037844387, 0, 0.5000000000000003)), keep=Keep.TOP, mode=Mode.PRIVATE)
    fillet1_piece_6b = split(fillet1_piece_6b, bisect_by=Plane(origin=(13.97, 14.764439111, -29.165775935), z_dir=(1, 0, 0)), keep=Keep.TOP, mode=Mode.PRIVATE)
    fillet1_piece_6 = fillet1_piece_6a & fillet1_piece_6b
    add(fillet1_piece_6)
    with BuildSketch(Plane(origin=(31.731675913, 21.740833439, -2.189125109), x_dir=(0.5000000000017293, -6.713789629229294e-15, 0.8660254037834403), z_dir=(0, -1, 0))) as fillet1_piece_7a_section:
        with BuildLine():
            CenterArc((3.175, -3.108333376), FILLET1_R, 101.762045639, 78.237954362)
            Line((0, -3.108333376), (-0.0635, -3.108333376))
            Line((-0.0635, -3.108333376), (-0.0635, 0))
            Line((-0.0635, 0), (0, 0.0635))
            ThreePointArc((0, 0.0635), (1.263891971, 0.0635), (2.514839621, 0.062166668))
            Line((2.514839621, 0.062166668), (2.527783942, 0))
        make_face()
    fillet1_piece_7a = extrude(amount=17.295833439, mode=Mode.PRIVATE)
    fillet1_piece_7a = split(fillet1_piece_7a, bisect_by=Plane(origin=(32.675875179, 19.05, -2.005325683), z_dir=(0, -1, 0)), keep=Keep.TOP, mode=Mode.PRIVATE)
    fillet1_piece_7a = split(fillet1_piece_7a, bisect_by=Plane(origin=(32.675875179, 13.97, -2.005325683), z_dir=(0, 1, 0)), keep=Keep.TOP, mode=Mode.PRIVATE)
    with BuildSketch(Plane(origin=(23.794175913, 13.97, -15.937278394), x_dir=(0, 1, 0), z_dir=(0.5000000000000003, 0, 0.8660254037844386))) as fillet1_piece_7b_section:
        with BuildLine():
            CenterArc((FILLET1_R, -FILLET1_R), FILLET1_R, 90, 90)
            Line((0, -FILLET1_R), (-FILLET1_R * 0.02, -FILLET1_R))
            Line((-FILLET1_R * 0.02, -FILLET1_R), (-FILLET1_R * 0.02, FILLET1_R * 0.02))
            Line((-FILLET1_R * 0.02, FILLET1_R * 0.02), (FILLET1_R, FILLET1_R * 0.02))
            Line((FILLET1_R, FILLET1_R * 0.02), (FILLET1_R, 0))
        make_face()
    fillet1_piece_7b = extrude(amount=23.8125, mode=Mode.PRIVATE)
    fillet1_piece_7b = split(fillet1_piece_7b, bisect_by=Plane(origin=(33.609989941, 14.764439111, -1.06421022), z_dir=(-0.8660254037844389, 0, -0.4999999999999995)), keep=Keep.TOP, mode=Mode.PRIVATE)
    fillet1_piece_7b = split(fillet1_piece_7b, bisect_by=Plane(origin=(32.243302881, 14.764439111, -2.484513077), z_dir=(0.5000000000000004, -6.713789629229294e-15, 0.8660254037844385)), keep=Keep.TOP, mode=Mode.PRIVATE)
    fillet1_piece_7 = fillet1_piece_7a & fillet1_piece_7b
    add(fillet1_piece_7)
    with BuildSketch(Plane(origin=(17.761675913, 21.740833439, 26.385874891), x_dir=(-0.49999999999824063, -6.7137896292292946e-15, 0.8660254037854545), z_dir=(0, -1, 0))) as fillet1_piece_8a_section:
        with BuildLine():
            CenterArc((3.175, -3.108333376), FILLET1_R, 101.762045639, 78.237954362)
            Line((0, -3.108333376), (-0.0635, -3.108333376))
            Line((-0.0635, -3.108333376), (-0.0635, 0))
            Line((-0.0635, 0), (0, 0.0635))
            ThreePointArc((0, 0.0635), (1.263891971, 0.0635), (2.514839621, 0.062166668))
            Line((2.514839621, 0.062166668), (2.527783942, 0))
        make_face()
    fillet1_piece_8a = extrude(amount=17.295833439, mode=Mode.PRIVATE)
    fillet1_piece_8a = split(fillet1_piece_8a, bisect_by=Plane(origin=(18.074600574, 19.05, 27.295475154), z_dir=(0, -1, 0)), keep=Keep.TOP, mode=Mode.PRIVATE)
    fillet1_piece_8a = split(fillet1_piece_8a, bisect_by=Plane(origin=(18.074600574, 13.97, 27.295475154), z_dir=(0, 1, 0)), keep=Keep.TOP, mode=Mode.PRIVATE)
    with BuildSketch(Plane(origin=(25.699175913, 13.97, 12.637721606), x_dir=(0, 1, 0), z_dir=(-0.4999999999999996, 0, 0.8660254037844389))) as fillet1_piece_8b_section:
        with BuildLine():
            CenterArc((FILLET1_R, -FILLET1_R), FILLET1_R, 90, 90)
            Line((0, -FILLET1_R), (-FILLET1_R * 0.02, -FILLET1_R))
            Line((-FILLET1_R * 0.02, -FILLET1_R), (-FILLET1_R * 0.02, FILLET1_R * 0.02))
            Line((-FILLET1_R * 0.02, FILLET1_R * 0.02), (FILLET1_R, FILLET1_R * 0.02))
            Line((FILLET1_R, FILLET1_R * 0.02), (FILLET1_R, 0))
        make_face()
    fillet1_piece_8b = extrude(amount=23.8125, mode=Mode.PRIVATE)
    fillet1_piece_8b = split(fillet1_piece_8b, bisect_by=Plane(origin=(17.726628056, 14.764439111, 28.575), z_dir=(0, 0, -1)), keep=Keep.TOP, mode=Mode.PRIVATE)
    fillet1_piece_8b = split(fillet1_piece_8b, bisect_by=Plane(origin=(18.273302881, 14.764439111, 26.681262858), z_dir=(-0.49999999999999956, -6.713789629229294e-15, 0.8660254037844389)), keep=Keep.TOP, mode=Mode.PRIVATE)
    fillet1_piece_8 = fillet1_piece_8a & fillet1_piece_8b
    add(fillet1_piece_8)


solid = part.part
